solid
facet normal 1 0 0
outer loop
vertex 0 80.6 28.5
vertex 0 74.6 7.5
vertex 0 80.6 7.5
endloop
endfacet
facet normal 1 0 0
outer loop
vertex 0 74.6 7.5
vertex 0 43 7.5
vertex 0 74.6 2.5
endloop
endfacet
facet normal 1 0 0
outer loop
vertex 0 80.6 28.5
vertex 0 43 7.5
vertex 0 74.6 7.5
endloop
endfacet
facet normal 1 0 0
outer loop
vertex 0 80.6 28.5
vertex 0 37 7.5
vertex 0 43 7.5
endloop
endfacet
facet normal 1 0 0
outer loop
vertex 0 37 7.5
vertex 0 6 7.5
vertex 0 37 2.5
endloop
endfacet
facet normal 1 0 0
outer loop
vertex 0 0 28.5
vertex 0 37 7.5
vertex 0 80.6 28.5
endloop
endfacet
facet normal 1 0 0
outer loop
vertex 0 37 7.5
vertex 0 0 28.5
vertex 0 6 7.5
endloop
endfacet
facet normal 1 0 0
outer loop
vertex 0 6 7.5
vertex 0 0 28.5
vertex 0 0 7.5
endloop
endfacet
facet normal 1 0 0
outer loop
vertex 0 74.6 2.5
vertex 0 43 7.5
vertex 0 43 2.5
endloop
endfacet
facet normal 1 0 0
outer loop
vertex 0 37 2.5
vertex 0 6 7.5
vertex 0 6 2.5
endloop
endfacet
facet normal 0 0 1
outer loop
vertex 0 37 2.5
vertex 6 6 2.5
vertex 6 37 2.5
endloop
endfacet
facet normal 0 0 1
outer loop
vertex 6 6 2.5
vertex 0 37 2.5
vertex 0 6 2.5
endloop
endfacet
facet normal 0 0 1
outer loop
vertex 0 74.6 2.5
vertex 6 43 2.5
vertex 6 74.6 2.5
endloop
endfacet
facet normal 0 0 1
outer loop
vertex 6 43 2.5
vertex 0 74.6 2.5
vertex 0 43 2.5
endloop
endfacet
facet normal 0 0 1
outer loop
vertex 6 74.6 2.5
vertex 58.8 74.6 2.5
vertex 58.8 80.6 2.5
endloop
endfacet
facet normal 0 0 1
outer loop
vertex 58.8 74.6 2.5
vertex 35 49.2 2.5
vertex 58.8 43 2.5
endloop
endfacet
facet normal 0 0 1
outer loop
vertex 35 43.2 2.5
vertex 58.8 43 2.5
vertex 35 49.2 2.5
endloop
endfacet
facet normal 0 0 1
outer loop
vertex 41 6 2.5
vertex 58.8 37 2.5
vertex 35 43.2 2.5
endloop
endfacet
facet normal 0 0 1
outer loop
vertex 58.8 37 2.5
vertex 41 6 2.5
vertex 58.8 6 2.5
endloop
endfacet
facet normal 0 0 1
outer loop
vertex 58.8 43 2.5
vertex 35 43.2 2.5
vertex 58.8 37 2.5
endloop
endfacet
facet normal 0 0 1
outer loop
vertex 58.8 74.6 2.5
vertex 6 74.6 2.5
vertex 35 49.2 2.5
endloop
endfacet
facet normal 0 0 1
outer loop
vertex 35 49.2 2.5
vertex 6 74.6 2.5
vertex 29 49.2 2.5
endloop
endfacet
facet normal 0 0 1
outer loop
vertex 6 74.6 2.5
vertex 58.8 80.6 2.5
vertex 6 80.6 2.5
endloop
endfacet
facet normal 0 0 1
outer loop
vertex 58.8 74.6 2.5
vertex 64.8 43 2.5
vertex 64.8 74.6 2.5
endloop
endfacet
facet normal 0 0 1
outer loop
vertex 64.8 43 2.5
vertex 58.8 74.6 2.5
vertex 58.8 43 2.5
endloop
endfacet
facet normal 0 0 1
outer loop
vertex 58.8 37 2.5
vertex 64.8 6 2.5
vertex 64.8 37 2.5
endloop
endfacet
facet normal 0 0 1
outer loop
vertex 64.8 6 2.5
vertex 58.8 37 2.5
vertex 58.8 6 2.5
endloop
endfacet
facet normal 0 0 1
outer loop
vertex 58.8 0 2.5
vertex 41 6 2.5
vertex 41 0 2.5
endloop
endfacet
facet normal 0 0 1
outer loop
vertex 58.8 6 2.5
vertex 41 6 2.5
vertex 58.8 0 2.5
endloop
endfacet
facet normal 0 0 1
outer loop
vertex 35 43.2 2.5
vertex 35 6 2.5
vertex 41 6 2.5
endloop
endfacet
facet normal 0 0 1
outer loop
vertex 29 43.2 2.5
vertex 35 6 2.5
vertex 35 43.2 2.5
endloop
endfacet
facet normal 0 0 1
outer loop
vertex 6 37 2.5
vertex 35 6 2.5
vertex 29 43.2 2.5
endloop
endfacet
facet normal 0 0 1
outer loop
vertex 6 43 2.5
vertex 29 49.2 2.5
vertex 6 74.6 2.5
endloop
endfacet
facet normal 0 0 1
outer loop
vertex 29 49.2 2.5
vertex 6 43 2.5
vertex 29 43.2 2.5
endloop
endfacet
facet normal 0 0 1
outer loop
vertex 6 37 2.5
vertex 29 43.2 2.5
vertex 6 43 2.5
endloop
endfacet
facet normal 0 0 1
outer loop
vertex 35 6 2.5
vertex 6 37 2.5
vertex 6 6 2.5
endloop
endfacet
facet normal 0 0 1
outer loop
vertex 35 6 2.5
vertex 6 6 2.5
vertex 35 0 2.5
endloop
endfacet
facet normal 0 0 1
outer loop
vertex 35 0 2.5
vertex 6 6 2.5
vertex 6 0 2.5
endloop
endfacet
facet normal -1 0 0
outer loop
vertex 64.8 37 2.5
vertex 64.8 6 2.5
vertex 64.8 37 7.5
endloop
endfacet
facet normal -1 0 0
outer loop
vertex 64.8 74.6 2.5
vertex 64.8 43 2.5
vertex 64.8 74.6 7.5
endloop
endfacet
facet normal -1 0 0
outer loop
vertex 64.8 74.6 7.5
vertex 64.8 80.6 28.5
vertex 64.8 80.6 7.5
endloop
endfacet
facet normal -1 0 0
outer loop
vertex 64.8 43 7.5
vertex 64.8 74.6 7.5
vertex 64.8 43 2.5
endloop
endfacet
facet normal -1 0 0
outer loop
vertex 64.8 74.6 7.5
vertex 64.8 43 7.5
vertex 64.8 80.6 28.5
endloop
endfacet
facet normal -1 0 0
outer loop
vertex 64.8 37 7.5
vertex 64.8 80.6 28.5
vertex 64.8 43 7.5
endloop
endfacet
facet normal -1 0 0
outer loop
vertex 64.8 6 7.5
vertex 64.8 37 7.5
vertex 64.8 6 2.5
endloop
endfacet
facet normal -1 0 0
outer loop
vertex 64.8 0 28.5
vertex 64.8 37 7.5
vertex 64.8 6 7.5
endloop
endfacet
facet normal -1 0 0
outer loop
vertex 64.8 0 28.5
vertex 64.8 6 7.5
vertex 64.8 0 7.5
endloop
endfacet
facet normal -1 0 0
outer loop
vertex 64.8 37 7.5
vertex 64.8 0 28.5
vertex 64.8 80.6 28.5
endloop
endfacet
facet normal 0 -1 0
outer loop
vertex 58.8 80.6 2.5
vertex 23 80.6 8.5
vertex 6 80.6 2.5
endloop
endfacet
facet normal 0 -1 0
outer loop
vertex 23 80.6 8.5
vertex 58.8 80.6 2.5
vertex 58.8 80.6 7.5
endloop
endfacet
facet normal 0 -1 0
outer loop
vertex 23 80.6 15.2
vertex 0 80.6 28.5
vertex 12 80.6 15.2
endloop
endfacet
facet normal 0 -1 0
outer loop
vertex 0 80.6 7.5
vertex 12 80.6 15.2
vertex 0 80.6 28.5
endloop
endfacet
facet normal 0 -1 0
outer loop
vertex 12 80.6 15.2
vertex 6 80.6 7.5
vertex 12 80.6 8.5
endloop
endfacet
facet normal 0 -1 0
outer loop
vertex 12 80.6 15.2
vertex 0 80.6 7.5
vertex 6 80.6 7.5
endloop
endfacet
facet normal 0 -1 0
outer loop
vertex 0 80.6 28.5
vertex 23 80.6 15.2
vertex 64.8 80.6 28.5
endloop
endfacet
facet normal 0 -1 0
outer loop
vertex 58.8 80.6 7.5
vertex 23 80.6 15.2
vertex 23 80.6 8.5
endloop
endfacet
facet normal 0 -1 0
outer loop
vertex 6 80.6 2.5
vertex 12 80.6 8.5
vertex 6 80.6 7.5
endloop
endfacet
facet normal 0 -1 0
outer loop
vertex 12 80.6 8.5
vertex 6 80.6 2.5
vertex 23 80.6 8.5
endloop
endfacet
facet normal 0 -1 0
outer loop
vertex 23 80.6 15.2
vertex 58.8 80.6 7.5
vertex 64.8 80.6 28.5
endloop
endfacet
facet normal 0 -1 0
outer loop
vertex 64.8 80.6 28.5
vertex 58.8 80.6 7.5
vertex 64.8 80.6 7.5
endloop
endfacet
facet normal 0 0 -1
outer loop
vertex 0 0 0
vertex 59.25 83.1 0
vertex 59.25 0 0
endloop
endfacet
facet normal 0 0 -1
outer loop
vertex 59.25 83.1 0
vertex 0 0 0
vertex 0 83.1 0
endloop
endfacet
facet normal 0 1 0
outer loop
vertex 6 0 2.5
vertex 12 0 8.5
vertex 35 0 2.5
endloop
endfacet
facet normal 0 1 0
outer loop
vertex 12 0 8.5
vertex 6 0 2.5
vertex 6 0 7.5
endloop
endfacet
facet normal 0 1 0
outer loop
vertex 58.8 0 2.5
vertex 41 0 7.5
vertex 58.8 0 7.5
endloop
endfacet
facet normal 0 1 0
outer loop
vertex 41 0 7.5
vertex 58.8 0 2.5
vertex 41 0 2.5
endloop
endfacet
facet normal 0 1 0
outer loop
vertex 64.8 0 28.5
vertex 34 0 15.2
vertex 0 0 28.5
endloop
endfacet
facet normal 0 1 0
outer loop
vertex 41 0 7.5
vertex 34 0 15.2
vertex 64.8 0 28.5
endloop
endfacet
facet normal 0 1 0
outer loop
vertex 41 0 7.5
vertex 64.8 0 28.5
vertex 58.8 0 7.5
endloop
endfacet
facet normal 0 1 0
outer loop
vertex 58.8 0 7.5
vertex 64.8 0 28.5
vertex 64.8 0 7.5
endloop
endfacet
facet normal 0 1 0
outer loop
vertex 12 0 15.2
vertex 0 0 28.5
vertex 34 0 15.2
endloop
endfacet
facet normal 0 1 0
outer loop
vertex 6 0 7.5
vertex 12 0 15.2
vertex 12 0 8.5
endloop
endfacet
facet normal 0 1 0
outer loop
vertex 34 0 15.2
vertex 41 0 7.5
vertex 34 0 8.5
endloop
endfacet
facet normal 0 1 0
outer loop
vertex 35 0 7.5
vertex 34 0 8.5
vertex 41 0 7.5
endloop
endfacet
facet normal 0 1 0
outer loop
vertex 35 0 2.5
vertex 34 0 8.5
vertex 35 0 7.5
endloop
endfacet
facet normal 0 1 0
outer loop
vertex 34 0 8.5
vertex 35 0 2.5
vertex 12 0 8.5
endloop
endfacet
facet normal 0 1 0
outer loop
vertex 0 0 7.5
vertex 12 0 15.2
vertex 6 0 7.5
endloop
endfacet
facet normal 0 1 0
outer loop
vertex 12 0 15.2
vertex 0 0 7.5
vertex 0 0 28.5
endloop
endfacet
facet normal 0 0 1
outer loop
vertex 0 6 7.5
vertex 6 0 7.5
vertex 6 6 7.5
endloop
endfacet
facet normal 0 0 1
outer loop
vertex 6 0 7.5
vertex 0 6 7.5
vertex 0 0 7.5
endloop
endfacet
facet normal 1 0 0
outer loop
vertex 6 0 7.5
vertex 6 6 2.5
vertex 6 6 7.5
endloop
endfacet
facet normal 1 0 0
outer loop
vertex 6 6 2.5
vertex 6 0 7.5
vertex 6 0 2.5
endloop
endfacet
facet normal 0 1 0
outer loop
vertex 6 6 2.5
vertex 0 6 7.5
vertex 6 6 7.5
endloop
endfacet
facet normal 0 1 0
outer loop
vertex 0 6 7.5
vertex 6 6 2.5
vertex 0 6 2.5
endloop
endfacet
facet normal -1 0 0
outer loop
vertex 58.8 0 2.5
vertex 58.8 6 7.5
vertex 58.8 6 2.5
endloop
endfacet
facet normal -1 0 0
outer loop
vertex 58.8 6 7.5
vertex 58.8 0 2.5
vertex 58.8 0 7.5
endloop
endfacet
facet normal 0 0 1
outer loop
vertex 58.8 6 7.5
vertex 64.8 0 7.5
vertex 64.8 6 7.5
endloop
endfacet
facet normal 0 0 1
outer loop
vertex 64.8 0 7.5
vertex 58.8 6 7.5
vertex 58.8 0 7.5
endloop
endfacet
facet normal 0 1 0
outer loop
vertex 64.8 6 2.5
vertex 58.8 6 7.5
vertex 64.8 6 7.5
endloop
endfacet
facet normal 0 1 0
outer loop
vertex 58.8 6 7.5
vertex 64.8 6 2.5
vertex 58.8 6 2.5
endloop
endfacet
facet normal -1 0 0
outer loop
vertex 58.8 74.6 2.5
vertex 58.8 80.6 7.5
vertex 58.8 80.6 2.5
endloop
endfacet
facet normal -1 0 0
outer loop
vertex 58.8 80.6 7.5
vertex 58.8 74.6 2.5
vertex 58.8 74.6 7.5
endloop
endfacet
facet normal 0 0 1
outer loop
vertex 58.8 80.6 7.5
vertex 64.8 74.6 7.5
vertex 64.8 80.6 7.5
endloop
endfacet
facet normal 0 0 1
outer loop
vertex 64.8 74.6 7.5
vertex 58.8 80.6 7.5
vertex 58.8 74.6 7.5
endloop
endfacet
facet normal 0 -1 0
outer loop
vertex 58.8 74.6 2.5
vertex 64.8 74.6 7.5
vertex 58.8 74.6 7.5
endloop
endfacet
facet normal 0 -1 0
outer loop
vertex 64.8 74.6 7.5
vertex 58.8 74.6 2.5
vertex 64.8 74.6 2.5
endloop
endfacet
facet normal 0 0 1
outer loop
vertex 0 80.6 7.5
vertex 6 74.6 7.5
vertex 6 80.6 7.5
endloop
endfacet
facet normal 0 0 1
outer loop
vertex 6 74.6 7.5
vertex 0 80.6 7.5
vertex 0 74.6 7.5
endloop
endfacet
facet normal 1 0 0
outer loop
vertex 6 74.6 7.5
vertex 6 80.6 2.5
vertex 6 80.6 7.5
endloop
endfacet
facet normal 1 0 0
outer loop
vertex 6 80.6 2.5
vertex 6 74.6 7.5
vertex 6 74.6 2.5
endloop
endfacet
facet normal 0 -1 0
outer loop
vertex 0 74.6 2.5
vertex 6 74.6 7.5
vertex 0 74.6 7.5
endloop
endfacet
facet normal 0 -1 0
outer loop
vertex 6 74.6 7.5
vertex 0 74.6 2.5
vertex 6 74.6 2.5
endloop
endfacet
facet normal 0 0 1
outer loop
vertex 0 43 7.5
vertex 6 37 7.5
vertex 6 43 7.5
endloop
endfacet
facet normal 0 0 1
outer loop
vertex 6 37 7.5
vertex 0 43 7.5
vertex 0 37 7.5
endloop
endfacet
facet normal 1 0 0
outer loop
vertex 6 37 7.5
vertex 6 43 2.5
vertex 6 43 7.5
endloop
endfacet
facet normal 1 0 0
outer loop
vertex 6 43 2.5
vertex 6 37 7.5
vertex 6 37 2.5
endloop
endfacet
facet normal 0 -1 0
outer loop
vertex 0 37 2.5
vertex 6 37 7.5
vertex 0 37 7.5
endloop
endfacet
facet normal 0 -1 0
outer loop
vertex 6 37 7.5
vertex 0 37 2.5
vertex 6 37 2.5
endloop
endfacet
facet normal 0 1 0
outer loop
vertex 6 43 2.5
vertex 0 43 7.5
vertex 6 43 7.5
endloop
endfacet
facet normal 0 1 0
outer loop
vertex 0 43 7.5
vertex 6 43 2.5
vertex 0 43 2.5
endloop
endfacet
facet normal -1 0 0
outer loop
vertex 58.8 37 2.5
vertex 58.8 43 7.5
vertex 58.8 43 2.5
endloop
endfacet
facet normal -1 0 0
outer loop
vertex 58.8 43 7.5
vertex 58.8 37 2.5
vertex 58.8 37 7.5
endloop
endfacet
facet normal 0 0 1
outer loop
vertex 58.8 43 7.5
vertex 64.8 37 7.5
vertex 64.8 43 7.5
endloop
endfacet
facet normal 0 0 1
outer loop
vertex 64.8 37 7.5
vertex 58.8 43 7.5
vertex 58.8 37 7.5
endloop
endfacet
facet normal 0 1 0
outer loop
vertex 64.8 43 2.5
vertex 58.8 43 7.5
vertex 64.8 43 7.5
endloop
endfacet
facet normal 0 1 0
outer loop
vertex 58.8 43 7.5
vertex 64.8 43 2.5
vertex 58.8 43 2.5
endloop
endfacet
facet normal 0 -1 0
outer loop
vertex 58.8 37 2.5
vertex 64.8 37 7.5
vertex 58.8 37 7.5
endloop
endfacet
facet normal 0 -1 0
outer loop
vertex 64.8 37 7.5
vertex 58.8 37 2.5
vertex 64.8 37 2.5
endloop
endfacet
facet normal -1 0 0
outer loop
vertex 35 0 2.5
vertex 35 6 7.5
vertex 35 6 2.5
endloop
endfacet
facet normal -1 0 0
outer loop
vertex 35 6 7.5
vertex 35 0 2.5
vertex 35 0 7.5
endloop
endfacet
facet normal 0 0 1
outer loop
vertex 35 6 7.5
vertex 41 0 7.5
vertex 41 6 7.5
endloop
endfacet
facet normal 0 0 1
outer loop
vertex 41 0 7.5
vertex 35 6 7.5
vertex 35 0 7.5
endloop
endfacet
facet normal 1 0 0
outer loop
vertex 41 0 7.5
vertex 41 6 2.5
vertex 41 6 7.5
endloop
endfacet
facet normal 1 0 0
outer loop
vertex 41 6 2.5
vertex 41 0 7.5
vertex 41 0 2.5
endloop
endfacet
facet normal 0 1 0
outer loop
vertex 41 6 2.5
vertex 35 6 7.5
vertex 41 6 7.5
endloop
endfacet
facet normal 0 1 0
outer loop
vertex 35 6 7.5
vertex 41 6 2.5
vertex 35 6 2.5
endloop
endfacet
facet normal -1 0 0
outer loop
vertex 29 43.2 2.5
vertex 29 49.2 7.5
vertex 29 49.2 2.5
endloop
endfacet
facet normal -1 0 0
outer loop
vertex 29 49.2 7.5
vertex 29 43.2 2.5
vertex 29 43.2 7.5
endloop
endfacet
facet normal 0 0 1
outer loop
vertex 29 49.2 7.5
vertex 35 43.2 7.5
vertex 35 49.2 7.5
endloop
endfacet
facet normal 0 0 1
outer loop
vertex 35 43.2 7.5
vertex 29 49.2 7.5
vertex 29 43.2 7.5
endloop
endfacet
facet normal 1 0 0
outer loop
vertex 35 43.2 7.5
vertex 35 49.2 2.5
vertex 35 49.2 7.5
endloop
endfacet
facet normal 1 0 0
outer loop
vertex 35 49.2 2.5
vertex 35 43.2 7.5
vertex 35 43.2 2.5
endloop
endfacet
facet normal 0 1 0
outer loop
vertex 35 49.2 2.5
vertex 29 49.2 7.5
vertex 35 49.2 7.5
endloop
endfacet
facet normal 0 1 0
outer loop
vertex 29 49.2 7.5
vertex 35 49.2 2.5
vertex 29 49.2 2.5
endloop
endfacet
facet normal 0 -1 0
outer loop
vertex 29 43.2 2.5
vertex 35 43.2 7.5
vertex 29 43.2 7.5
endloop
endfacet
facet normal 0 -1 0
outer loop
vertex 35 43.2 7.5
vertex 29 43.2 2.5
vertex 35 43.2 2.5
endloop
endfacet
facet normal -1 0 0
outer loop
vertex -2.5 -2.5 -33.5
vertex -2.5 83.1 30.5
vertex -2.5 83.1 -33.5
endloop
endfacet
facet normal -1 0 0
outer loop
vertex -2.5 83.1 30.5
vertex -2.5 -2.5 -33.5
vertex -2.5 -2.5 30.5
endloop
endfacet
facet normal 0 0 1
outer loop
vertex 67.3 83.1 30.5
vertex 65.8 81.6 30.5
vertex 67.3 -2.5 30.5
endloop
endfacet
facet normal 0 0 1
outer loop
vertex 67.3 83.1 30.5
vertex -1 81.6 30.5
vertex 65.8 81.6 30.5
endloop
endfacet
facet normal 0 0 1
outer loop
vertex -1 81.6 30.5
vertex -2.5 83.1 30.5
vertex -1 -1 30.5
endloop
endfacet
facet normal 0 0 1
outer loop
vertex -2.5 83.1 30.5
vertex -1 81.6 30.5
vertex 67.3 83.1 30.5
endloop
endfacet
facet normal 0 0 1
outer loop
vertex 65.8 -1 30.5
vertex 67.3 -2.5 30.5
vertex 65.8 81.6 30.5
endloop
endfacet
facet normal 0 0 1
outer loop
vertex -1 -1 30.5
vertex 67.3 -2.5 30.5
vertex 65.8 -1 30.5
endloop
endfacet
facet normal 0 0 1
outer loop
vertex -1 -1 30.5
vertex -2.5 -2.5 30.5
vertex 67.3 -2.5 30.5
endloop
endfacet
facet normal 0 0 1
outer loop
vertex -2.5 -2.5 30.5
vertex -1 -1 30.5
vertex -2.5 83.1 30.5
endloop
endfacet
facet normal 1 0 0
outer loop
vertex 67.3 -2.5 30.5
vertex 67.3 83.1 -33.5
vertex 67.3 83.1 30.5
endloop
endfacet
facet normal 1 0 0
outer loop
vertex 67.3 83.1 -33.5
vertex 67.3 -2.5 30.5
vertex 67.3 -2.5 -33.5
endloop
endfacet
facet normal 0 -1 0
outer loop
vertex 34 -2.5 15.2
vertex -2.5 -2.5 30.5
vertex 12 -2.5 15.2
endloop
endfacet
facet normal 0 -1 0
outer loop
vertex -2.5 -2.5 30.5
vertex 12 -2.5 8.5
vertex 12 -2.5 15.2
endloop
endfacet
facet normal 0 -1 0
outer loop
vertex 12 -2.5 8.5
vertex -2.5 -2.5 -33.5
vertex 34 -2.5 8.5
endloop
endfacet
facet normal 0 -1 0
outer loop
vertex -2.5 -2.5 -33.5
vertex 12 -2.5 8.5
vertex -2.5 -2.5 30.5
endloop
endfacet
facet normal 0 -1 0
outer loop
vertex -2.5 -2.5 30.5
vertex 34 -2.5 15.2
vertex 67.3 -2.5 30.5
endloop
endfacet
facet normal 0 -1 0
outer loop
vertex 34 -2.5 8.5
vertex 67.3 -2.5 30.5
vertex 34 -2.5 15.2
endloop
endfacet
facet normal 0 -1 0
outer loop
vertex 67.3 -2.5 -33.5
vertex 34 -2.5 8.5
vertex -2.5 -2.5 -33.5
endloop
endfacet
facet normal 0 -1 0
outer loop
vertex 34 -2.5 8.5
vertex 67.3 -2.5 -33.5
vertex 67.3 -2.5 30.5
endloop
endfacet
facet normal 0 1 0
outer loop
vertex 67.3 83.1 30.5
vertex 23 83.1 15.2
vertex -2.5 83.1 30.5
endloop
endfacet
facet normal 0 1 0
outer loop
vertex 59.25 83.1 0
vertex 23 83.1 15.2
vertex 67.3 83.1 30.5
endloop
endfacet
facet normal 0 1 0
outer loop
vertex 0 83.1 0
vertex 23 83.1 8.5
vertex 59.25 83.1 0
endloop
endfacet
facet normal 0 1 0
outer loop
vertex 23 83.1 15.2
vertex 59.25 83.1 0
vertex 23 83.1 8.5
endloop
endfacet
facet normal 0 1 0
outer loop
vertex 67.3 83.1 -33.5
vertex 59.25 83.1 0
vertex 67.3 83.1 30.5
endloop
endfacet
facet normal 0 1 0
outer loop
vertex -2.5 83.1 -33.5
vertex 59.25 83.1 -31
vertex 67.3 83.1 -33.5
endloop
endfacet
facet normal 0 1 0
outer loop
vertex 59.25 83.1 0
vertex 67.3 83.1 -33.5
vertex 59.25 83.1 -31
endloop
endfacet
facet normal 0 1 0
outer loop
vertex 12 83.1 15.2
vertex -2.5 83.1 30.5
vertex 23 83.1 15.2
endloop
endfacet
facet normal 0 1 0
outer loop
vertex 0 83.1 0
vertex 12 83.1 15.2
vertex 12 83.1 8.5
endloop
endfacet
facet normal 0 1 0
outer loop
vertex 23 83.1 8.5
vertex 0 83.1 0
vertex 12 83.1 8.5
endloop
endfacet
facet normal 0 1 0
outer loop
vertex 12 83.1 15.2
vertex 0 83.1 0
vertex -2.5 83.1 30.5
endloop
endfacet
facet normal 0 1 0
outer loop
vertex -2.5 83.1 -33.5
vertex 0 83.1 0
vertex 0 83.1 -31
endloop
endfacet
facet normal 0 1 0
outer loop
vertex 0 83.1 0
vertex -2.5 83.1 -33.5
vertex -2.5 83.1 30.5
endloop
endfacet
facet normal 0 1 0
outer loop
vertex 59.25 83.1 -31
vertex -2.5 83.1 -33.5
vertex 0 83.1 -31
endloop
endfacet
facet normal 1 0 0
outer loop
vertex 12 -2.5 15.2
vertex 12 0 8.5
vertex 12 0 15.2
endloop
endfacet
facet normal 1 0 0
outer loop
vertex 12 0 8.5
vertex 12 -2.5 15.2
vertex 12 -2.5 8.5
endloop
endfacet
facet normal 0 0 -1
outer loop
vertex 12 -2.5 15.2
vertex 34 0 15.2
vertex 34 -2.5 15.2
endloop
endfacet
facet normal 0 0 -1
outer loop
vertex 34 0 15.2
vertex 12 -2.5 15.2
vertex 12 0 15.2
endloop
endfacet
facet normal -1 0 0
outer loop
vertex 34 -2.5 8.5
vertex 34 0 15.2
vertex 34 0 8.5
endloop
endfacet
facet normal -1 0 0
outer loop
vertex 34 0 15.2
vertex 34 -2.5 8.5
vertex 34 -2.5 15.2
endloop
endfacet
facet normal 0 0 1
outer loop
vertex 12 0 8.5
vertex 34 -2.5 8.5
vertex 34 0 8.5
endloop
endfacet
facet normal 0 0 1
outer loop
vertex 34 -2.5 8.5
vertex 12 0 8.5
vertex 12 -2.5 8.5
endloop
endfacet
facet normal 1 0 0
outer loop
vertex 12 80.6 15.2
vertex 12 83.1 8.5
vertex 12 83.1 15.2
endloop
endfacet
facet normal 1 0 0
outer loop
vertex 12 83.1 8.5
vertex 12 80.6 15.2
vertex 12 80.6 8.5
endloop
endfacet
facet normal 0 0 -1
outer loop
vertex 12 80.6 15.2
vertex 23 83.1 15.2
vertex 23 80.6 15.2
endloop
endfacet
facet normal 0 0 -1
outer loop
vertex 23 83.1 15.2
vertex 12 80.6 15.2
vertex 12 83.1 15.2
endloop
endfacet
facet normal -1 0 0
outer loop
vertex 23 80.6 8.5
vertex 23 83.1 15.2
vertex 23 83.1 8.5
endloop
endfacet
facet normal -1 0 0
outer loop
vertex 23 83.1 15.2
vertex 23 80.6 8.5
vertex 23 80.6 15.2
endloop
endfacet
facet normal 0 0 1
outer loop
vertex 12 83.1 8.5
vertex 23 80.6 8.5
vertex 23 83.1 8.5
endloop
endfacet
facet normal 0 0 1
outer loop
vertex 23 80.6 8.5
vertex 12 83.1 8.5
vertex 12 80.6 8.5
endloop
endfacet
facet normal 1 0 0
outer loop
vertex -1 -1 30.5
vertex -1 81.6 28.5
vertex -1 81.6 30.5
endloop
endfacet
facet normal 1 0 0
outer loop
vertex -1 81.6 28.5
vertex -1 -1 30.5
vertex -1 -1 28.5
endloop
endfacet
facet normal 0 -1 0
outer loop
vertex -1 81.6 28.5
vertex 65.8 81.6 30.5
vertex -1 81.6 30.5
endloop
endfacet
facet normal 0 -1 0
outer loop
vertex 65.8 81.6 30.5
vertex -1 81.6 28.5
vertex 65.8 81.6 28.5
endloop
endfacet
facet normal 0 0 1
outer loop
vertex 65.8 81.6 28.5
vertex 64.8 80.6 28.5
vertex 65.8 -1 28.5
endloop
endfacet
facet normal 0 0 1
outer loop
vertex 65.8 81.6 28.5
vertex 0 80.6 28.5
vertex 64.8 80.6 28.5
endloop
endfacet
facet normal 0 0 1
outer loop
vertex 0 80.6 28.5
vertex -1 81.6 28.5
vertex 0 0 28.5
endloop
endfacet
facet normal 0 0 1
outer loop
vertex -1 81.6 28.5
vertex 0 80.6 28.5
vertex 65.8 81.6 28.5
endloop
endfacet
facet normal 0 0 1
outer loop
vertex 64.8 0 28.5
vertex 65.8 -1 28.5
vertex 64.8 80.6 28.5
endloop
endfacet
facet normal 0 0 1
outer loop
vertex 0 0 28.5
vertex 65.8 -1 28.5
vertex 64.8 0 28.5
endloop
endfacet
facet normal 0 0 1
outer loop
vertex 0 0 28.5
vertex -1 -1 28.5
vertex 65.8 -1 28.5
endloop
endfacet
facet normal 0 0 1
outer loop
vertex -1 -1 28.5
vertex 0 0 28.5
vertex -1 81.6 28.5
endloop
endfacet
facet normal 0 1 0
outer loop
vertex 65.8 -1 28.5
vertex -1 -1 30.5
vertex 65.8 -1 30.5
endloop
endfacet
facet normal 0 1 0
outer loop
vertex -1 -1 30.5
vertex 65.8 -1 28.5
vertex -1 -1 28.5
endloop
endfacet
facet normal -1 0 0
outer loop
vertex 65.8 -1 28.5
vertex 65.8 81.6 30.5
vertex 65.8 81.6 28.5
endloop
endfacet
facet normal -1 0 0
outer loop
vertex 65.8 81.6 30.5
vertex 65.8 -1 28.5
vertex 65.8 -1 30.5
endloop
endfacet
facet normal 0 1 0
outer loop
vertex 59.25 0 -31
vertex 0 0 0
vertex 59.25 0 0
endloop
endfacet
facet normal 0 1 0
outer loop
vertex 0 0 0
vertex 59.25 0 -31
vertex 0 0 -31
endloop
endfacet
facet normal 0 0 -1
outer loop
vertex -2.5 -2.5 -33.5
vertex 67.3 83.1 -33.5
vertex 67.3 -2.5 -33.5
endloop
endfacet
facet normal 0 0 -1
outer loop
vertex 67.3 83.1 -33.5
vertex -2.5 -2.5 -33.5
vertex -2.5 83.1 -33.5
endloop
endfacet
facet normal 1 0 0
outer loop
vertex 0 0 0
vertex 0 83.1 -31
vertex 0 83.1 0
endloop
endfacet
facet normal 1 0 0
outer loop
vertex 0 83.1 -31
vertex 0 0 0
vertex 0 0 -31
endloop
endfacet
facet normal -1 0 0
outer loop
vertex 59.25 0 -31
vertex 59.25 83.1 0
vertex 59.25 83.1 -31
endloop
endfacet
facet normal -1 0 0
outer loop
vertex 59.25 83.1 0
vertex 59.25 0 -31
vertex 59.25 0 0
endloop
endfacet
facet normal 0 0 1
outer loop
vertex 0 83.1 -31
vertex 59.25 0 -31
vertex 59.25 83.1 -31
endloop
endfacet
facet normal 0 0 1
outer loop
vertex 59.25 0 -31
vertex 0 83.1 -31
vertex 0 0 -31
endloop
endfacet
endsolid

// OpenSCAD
createBottom();
createPowerSupplyBox();

module createBottom(){
difference(){
  bottomBox();
  translate([12,-2.5,8.5]) cube([22,2.5,6.7]);
  translate([12,80.6,8.5]) cube([11,2.5,6.7]);
    
  translate([-1,-1,28.5]) cube([1,82.6,2]);
  translate([64.8,-1,28.5]) cube([1,82.6,2]);
  translate([0,-1,28.5]) cube([64.8,1,2]);
  translate([0,80.6,28.5]) cube([64.8,1,2]);
    
}
}

module bottomBox()
{
    //Grundplatte
cube([64.8,80.6,2.5]);

//Stützquader
translate([0,0,2.5]) cube([6,6,5]);
translate([58.8,0,2.5]) cube([6,6,5]);
translate([58.8,74.6,2.5]) cube([6,6,5]);
translate([0,74.6,2.5]) cube([6,6,5]);

translate([0,37,2.5]) cube([6,6,5]);
translate([58.8,37,2.5]) cube([6,6,5]);
translate([35,0,2.5]) cube([6,6,5]);

translate([29,43.2,2.5]) cube([6,6,5]);

//Rahmen
translate([-2.5,-2.5,0]) cube([69.8,2.5,30.5]);
translate([-2.5,80.6,0]) cube([69.8,2.5,30.5]);
translate([-2.5,0,0]) cube([2.5,80.6,30.5]);
translate([64.8,0,0]) cube([2.5,80.6,30.5]);
}

module createPowerSupplyBox()
{
  translate([-2.5,-2.5,-33.5]) cube([69.8,2.5,33.5]);
  translate([-2.5,0,-33.5]) cube([2.5,83.1,33.5]);
  translate([61.2,0,-33.5]) cube([6.1,83.1,33.5]);
  translate([59.25,0,-33.5]) cube([2.5,83.1,33.5]);
  
  translate([0,0,-33.5]) cube([64.8,83.1,2.5]);
}
